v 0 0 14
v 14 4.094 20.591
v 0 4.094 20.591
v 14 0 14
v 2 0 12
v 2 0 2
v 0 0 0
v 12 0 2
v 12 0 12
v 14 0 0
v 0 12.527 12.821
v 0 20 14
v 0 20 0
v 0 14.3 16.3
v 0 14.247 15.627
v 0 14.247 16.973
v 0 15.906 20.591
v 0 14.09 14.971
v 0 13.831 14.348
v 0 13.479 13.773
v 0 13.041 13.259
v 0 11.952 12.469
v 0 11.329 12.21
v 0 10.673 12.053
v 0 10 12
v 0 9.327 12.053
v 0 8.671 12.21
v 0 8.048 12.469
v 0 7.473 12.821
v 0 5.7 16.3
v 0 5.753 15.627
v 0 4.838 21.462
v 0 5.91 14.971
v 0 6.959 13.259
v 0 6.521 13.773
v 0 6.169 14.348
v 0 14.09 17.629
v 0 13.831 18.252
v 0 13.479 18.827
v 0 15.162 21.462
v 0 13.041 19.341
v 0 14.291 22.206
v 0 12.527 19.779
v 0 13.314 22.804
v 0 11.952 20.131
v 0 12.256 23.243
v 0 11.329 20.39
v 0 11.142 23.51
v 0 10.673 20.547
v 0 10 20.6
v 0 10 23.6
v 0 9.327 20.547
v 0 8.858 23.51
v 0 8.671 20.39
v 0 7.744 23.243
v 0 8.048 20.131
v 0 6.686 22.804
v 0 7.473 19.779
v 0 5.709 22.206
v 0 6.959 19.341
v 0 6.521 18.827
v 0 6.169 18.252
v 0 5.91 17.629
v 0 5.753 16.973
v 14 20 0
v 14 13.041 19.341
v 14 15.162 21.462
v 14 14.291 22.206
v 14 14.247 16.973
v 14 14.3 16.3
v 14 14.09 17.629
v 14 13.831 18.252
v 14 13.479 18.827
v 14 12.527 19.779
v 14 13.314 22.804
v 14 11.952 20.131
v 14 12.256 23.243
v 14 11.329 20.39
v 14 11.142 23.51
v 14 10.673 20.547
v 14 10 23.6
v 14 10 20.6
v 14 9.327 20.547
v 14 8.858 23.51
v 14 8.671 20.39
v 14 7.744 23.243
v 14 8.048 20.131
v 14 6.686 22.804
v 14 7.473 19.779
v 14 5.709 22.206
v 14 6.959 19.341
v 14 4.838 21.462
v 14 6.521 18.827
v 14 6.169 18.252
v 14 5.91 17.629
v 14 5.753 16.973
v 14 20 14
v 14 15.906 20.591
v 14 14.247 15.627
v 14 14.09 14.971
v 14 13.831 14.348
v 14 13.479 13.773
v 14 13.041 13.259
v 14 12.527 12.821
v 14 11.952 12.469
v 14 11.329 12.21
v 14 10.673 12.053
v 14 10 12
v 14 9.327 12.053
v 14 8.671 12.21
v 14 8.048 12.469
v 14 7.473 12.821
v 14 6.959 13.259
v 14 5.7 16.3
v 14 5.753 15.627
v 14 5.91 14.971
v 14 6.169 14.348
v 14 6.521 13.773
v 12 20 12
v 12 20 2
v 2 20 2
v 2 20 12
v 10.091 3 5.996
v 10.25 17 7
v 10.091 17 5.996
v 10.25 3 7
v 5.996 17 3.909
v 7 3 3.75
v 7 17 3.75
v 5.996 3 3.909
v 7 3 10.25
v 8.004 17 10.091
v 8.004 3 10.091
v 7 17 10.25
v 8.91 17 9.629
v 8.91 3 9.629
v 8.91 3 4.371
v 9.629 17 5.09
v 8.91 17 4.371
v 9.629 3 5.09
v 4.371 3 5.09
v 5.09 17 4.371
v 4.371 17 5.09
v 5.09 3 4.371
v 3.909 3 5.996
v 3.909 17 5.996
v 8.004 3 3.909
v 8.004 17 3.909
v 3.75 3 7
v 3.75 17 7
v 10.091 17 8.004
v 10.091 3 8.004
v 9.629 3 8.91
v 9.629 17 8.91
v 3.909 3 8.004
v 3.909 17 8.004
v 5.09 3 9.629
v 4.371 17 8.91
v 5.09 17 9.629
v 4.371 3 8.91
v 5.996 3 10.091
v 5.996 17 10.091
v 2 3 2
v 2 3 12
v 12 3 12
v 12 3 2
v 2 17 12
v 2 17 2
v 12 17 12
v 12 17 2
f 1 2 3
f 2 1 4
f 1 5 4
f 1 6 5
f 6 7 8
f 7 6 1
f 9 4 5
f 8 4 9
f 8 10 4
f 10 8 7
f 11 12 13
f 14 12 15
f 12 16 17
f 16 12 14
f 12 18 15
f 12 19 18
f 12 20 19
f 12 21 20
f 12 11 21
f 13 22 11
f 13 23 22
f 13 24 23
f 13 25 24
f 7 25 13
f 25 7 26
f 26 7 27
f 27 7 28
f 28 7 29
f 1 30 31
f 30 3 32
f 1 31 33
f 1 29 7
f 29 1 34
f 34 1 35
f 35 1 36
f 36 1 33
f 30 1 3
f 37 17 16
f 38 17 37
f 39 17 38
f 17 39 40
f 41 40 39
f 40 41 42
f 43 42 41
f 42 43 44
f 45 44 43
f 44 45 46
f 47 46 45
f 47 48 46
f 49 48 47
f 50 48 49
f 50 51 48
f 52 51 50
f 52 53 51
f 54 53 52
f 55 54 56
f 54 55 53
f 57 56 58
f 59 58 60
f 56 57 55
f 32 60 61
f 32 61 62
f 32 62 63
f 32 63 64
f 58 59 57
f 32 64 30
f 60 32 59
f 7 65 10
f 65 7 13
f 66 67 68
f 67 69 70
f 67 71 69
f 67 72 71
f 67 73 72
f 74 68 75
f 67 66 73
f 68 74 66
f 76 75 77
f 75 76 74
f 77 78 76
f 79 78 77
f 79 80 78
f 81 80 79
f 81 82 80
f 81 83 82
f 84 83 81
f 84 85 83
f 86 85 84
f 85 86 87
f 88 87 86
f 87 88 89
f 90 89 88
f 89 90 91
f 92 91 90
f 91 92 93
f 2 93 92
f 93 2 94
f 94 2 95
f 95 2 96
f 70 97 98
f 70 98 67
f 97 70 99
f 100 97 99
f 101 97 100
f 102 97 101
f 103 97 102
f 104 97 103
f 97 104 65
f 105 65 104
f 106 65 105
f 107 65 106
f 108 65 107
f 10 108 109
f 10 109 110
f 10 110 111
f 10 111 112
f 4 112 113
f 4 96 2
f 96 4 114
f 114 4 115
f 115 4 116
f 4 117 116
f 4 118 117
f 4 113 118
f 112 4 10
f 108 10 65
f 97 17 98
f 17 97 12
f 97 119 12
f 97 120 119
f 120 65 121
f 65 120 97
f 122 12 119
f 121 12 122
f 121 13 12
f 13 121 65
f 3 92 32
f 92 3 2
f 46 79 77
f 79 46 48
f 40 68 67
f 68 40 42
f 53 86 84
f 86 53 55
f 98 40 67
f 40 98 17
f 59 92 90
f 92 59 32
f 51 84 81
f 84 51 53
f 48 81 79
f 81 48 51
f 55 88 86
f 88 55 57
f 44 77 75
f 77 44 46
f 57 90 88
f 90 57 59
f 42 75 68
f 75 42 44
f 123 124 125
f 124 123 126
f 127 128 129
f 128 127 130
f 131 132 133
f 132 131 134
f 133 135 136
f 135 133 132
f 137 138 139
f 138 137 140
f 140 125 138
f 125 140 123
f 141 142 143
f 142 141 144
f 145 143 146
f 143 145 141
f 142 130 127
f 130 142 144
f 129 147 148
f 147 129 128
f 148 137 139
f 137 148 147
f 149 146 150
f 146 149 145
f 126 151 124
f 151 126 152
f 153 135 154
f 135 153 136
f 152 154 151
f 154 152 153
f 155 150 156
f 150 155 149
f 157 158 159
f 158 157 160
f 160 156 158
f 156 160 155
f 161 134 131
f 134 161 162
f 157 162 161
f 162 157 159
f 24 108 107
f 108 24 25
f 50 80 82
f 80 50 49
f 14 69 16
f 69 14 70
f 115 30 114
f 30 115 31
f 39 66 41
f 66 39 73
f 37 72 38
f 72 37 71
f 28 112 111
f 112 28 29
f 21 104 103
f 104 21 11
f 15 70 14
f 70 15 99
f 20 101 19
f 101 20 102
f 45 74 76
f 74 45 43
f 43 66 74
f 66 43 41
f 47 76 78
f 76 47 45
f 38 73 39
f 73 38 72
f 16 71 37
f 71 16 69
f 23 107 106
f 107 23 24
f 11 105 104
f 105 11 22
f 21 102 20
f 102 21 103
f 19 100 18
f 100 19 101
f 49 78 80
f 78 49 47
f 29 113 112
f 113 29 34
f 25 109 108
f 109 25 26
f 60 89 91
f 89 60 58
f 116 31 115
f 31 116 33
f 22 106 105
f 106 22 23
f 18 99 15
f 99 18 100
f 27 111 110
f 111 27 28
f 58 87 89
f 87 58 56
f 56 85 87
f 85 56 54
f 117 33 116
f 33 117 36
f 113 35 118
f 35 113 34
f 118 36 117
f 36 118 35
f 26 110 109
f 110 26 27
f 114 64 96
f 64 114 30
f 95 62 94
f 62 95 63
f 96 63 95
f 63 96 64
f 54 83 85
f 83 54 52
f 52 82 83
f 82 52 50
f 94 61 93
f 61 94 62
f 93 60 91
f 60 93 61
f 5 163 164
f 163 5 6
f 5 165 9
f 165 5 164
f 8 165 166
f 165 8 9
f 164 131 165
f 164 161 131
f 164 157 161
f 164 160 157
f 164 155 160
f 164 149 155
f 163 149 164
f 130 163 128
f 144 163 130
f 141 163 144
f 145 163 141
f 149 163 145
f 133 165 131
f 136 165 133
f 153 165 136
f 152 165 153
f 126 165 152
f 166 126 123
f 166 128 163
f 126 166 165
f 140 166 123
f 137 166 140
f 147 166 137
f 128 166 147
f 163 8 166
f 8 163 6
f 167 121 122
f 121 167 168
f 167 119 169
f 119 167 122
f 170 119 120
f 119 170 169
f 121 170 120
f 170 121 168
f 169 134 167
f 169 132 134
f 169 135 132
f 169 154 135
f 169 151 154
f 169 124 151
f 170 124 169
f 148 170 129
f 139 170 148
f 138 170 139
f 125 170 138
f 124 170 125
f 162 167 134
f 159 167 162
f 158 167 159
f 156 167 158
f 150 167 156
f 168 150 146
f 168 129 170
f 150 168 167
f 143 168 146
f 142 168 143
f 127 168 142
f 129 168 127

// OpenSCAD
// file: ../parameters.scad
maximum_printable_size = 150;

layer_thickness = 0.3;
global_clearance = 0.5;


// scale parameters
tower_height = 220;
mid_base_width = 400;
mid_base_height = 160;
mid_base_length = 300;
base_mid_base_hinge_offset = 50;
counterweight_length = 200;


//Screw diameter and nut for M10 [mm]
M10_screw_diameter = 10.4;
M10_head_height = 10;
M10_head_diameter = 16+0.5;
M10_nut_height = 10.5;
M10_nut_diameter = 25.5;
M10_nut_pocket = 22.3;

//Screw diameter for M8 [mm]
M8_screw_diameter = 8.6;
M8_head_height = 8;
M8_head_diameter = 13.5;
M8_nut_height = 7.5;
M8_square_nut_thin_height = 4.5;
M8_nut_diameter = 14.4 + 0.5;
M8_nut_pocket = 13 + 0.5;
M8_washer_diameter = 16;
M8_washer_thickness = 1.5;


//Screw diameter and nut for M6 [mm]
M6_screw_diameter=6.5;
M6_head_diameter = 10+0.5;
M6_head_height = 6;
M6_nut_height = 4.9;
M6_nut_diameter = 11.8;
M6_nut_pocket = 10.4;
M6_square_nut_height = 3;
M6_square_nut_diameter = 10;
M6_washer_thickness = 1.6;

//Screw diameter and nut for M5 [mm]
M5_screw_diameter=5.5;
M5_head_height = 5;
M5_head_diameter = 13+0.5;
M5_nut_height = 4.5;
M5_nut_diameter = 9.4;
M5_nut_pocket = 8.4;

//Screw diameter and nut for M4 [mm]
M4_screw_diameter=4.5;
M4_screw_head_height = 4;
M4_nut_height = 3.2;
M4_nut_diameter = 8.4;
M4_nut_pocket = 7.5;

//Screw diameter and nut for M3 [mm]
M3_screw_diameter = 3.2;
M3_nut_height = 2.7;
M3_nut_diameter = 6.6;
M3_nut_pocket = 5.6;
M3_screw_head_height = 3;

//Screw diameter and nut for M2,5 [mm]
M2_5_screw_diameter = 2.7;
M2_5_nut_height = 2.3;
M2_5_nut_diameter = 6;
M2_5_nut_pocket = 5.5;

// kulove lozisko

bearing_efsm_08_h = 33+1;
bearing_efsm_08_m = 22;
bearing_efsm_08_db = 18;
bearing_efsm_08_ag = 10.5;
bearing_efsm_08_n = M4_screw_diameter;
bearing_efsm_08_a1 = 5.5;
bearing_efsm_08_d = 8.25;
bearing_efsm_08_B = 8; // ball height

bearing_efsm_10_h = 38+1;
bearing_efsm_10_m = 26;
bearing_efsm_10_db = 21.9;
bearing_efsm_10_ag = 12+0.2;
bearing_efsm_10_n = M5_screw_diameter;
bearing_efsm_10_a1 = 6.5;
bearing_efsm_10_d = 10.25;


bearing_efsm_12_width = 40+1;
bearing_efsm_12_h = bearing_efsm_12_width;
bearing_efsm_12_boltd = 28/2; // polovina vzdalenosti mezi srouby
bearing_efsm_12_m = bearing_efsm_12_boltd*2;
bearing_efsm_12_db = 25;
bearing_efsm_12_ag = 13;
bearing_efsm_12_a1 = 7;
bearing_efsm_12_n = M5_screw_diameter;
bearing_efsm_12_d = 12.15;
bearing_efsm_12_B = 10; // ball height
bearing_efsm_space = 1;

bearing_efsm_17_width = 54+1;
bearing_efsm_17_h = bearing_efsm_17_width;
bearing_efsm_17_boltd = 38/2; // polovina vzdalenosti mezi srouby
bearing_efsm_17_m = bearing_efsm_17_boltd*2;
bearing_efsm_17_db = 35;
bearing_efsm_17_ag = 18;
bearing_efsm_17_n = M6_screw_diameter;
bearing_efsm_17_a1 = 10;
bearing_efsm_17_B = 17; // ball height

//limcove lozisko
bearing_EFOM_10_L=26; //celkova sirka zakladny
bearing_EFOM_10_d1=10.3;//diametr otvoru real=10 mm
bearing_EFOM_10_dB=22;//diametr vystupku pro ulozeni lozika
bearing_EFOM_10_H=52;//celková delka zakladny
bearing_EFOM_10_J=36;// hole pitch
bearing_EFOM_10_A1=6.5;//vyska pouzdra
bearing_EFOM_10_Ag=12;//celkova vyska
bearing_EFOM_10_N1=5;//sirka otvoru pro sroub
bearing_EFOM_10_N2=8;//delka otvoru pro sroub
bearing_EFOM_10_m=36;//roztec der pro sroub
bearing_EFOM_10_h=9;//vyska lozika


608_bearing_outer_diameter = 22.3;
608_bearing_inner_diameter = 16;
608_bearing_thickness = 7.1;


// 20 KG servo parameters

servo_20kg_axis_offset = 9.375; // jak je osa mimo stredu
servo_20kg_body_x = 42;
servo_20kg_body_y = 21;
servo_20kg_body_z = 40;
servo_20kg_thread_x = 49/2;
servo_20kg_thread_y = 10/2;
servo_20kg_body_below = 10; // jak hluboko je tělo serva pod drzaky na srouby
servo_20kg_below = 25.8; // jak hluboko je páka serva pod drzaky na srouby

servo_20kg_bolt_d = 2.5+0.3;
servo_20kg_nut_d = 5+0.3;


//strain gauge
strain_gauge_width = 12.7;
strain_gauge_length = 75.1;
strain_gauge_screw_distance = 10;

//ALU profile
ALU_profile_width = 30.5;
ALU_profile_holder_wall_thickness = 3;
ALU_profile_groove_width = 8;

//pillow block bearing
//https://www.igus.eu/product/372
//Part no. KSTM-08
KSTM08_screws_distance = 33;         //m
KSTM08_screws_holes_diameter = 4.5;  //d2
KSTM08_flange_thickness = 6;         //h3
KSTM08_case_width = 9;               //C1
KSTM08_case_length = 47;             //a
KSTM08_ball_width = 12;              //B
KSTM08_ball_hole_diameter = 7.85;    //d1


//ložiska pro malý rotor
bearing_outer_diameter = 10.2;    // Rozměr B1 v nákresu s přídavkem na toleranci otvoru
bearing_thickness = 4;        // Rozměr B2 v nákresu
//bearing_shaft_length = 19.5;    // Rozměr B3 v nákresu, Originalni hodnota 19.5
bearing_shaft_length = 20;    // Rozměr B3 v nákresu


//parametry víčka s telemetrickou anténou
S01_sila_materialu=1.2;
S01_vyska_horni_zavit=10;
S01_hloubka_zavitu=4;
S01_prumer_vnitrni=50;
LO_spodni_prumer=17.2;
LO_vyska_bez_krytu=15;
S01_tolerance_zavit=1.5;
R01_vyska_prekryti_statoru=10;

g3_0_cone1 = 70;
g3_0_srcew_dist = 55;
// main file
include <../parameters.scad>

module 888_5009() {
    size = 20;
    wall_around_nut = 2;
    difference() {
        hull() {
            cube([M6_square_nut_diameter+wall_around_nut*2, size, M6_square_nut_diameter+wall_around_nut*2]);
            translate([0, size/2, M6_square_nut_diameter+wall_around_nut+M8_screw_diameter/2])
                rotate([0, 90, 0])
                    cylinder(d=M8_screw_diameter+6, h=M6_square_nut_diameter+wall_around_nut*2, $fn=40);
        }

        translate([M6_square_nut_diameter/2+wall_around_nut, 0, M6_square_nut_diameter/2+wall_around_nut])
            rotate([-90, 0, 0])
                cylinder(d=M6_screw_diameter, h=size, $fn=20);

        translate([-0.1, size/2, M6_square_nut_diameter+wall_around_nut+M8_screw_diameter/2])
            rotate([0, 90, 0])
                cylinder(d=M8_screw_diameter, h=M6_square_nut_diameter+0.2+wall_around_nut*2, $fn=40);

        translate([wall_around_nut, -0.1, wall_around_nut])
            cube([M6_square_nut_diameter, M6_square_nut_height+0.1, M6_square_nut_diameter]);

        translate([wall_around_nut, size-M6_square_nut_height, wall_around_nut])
            cube([M6_square_nut_diameter, M6_square_nut_height+0.1, M6_square_nut_diameter]);
    }
}

888_5009();
